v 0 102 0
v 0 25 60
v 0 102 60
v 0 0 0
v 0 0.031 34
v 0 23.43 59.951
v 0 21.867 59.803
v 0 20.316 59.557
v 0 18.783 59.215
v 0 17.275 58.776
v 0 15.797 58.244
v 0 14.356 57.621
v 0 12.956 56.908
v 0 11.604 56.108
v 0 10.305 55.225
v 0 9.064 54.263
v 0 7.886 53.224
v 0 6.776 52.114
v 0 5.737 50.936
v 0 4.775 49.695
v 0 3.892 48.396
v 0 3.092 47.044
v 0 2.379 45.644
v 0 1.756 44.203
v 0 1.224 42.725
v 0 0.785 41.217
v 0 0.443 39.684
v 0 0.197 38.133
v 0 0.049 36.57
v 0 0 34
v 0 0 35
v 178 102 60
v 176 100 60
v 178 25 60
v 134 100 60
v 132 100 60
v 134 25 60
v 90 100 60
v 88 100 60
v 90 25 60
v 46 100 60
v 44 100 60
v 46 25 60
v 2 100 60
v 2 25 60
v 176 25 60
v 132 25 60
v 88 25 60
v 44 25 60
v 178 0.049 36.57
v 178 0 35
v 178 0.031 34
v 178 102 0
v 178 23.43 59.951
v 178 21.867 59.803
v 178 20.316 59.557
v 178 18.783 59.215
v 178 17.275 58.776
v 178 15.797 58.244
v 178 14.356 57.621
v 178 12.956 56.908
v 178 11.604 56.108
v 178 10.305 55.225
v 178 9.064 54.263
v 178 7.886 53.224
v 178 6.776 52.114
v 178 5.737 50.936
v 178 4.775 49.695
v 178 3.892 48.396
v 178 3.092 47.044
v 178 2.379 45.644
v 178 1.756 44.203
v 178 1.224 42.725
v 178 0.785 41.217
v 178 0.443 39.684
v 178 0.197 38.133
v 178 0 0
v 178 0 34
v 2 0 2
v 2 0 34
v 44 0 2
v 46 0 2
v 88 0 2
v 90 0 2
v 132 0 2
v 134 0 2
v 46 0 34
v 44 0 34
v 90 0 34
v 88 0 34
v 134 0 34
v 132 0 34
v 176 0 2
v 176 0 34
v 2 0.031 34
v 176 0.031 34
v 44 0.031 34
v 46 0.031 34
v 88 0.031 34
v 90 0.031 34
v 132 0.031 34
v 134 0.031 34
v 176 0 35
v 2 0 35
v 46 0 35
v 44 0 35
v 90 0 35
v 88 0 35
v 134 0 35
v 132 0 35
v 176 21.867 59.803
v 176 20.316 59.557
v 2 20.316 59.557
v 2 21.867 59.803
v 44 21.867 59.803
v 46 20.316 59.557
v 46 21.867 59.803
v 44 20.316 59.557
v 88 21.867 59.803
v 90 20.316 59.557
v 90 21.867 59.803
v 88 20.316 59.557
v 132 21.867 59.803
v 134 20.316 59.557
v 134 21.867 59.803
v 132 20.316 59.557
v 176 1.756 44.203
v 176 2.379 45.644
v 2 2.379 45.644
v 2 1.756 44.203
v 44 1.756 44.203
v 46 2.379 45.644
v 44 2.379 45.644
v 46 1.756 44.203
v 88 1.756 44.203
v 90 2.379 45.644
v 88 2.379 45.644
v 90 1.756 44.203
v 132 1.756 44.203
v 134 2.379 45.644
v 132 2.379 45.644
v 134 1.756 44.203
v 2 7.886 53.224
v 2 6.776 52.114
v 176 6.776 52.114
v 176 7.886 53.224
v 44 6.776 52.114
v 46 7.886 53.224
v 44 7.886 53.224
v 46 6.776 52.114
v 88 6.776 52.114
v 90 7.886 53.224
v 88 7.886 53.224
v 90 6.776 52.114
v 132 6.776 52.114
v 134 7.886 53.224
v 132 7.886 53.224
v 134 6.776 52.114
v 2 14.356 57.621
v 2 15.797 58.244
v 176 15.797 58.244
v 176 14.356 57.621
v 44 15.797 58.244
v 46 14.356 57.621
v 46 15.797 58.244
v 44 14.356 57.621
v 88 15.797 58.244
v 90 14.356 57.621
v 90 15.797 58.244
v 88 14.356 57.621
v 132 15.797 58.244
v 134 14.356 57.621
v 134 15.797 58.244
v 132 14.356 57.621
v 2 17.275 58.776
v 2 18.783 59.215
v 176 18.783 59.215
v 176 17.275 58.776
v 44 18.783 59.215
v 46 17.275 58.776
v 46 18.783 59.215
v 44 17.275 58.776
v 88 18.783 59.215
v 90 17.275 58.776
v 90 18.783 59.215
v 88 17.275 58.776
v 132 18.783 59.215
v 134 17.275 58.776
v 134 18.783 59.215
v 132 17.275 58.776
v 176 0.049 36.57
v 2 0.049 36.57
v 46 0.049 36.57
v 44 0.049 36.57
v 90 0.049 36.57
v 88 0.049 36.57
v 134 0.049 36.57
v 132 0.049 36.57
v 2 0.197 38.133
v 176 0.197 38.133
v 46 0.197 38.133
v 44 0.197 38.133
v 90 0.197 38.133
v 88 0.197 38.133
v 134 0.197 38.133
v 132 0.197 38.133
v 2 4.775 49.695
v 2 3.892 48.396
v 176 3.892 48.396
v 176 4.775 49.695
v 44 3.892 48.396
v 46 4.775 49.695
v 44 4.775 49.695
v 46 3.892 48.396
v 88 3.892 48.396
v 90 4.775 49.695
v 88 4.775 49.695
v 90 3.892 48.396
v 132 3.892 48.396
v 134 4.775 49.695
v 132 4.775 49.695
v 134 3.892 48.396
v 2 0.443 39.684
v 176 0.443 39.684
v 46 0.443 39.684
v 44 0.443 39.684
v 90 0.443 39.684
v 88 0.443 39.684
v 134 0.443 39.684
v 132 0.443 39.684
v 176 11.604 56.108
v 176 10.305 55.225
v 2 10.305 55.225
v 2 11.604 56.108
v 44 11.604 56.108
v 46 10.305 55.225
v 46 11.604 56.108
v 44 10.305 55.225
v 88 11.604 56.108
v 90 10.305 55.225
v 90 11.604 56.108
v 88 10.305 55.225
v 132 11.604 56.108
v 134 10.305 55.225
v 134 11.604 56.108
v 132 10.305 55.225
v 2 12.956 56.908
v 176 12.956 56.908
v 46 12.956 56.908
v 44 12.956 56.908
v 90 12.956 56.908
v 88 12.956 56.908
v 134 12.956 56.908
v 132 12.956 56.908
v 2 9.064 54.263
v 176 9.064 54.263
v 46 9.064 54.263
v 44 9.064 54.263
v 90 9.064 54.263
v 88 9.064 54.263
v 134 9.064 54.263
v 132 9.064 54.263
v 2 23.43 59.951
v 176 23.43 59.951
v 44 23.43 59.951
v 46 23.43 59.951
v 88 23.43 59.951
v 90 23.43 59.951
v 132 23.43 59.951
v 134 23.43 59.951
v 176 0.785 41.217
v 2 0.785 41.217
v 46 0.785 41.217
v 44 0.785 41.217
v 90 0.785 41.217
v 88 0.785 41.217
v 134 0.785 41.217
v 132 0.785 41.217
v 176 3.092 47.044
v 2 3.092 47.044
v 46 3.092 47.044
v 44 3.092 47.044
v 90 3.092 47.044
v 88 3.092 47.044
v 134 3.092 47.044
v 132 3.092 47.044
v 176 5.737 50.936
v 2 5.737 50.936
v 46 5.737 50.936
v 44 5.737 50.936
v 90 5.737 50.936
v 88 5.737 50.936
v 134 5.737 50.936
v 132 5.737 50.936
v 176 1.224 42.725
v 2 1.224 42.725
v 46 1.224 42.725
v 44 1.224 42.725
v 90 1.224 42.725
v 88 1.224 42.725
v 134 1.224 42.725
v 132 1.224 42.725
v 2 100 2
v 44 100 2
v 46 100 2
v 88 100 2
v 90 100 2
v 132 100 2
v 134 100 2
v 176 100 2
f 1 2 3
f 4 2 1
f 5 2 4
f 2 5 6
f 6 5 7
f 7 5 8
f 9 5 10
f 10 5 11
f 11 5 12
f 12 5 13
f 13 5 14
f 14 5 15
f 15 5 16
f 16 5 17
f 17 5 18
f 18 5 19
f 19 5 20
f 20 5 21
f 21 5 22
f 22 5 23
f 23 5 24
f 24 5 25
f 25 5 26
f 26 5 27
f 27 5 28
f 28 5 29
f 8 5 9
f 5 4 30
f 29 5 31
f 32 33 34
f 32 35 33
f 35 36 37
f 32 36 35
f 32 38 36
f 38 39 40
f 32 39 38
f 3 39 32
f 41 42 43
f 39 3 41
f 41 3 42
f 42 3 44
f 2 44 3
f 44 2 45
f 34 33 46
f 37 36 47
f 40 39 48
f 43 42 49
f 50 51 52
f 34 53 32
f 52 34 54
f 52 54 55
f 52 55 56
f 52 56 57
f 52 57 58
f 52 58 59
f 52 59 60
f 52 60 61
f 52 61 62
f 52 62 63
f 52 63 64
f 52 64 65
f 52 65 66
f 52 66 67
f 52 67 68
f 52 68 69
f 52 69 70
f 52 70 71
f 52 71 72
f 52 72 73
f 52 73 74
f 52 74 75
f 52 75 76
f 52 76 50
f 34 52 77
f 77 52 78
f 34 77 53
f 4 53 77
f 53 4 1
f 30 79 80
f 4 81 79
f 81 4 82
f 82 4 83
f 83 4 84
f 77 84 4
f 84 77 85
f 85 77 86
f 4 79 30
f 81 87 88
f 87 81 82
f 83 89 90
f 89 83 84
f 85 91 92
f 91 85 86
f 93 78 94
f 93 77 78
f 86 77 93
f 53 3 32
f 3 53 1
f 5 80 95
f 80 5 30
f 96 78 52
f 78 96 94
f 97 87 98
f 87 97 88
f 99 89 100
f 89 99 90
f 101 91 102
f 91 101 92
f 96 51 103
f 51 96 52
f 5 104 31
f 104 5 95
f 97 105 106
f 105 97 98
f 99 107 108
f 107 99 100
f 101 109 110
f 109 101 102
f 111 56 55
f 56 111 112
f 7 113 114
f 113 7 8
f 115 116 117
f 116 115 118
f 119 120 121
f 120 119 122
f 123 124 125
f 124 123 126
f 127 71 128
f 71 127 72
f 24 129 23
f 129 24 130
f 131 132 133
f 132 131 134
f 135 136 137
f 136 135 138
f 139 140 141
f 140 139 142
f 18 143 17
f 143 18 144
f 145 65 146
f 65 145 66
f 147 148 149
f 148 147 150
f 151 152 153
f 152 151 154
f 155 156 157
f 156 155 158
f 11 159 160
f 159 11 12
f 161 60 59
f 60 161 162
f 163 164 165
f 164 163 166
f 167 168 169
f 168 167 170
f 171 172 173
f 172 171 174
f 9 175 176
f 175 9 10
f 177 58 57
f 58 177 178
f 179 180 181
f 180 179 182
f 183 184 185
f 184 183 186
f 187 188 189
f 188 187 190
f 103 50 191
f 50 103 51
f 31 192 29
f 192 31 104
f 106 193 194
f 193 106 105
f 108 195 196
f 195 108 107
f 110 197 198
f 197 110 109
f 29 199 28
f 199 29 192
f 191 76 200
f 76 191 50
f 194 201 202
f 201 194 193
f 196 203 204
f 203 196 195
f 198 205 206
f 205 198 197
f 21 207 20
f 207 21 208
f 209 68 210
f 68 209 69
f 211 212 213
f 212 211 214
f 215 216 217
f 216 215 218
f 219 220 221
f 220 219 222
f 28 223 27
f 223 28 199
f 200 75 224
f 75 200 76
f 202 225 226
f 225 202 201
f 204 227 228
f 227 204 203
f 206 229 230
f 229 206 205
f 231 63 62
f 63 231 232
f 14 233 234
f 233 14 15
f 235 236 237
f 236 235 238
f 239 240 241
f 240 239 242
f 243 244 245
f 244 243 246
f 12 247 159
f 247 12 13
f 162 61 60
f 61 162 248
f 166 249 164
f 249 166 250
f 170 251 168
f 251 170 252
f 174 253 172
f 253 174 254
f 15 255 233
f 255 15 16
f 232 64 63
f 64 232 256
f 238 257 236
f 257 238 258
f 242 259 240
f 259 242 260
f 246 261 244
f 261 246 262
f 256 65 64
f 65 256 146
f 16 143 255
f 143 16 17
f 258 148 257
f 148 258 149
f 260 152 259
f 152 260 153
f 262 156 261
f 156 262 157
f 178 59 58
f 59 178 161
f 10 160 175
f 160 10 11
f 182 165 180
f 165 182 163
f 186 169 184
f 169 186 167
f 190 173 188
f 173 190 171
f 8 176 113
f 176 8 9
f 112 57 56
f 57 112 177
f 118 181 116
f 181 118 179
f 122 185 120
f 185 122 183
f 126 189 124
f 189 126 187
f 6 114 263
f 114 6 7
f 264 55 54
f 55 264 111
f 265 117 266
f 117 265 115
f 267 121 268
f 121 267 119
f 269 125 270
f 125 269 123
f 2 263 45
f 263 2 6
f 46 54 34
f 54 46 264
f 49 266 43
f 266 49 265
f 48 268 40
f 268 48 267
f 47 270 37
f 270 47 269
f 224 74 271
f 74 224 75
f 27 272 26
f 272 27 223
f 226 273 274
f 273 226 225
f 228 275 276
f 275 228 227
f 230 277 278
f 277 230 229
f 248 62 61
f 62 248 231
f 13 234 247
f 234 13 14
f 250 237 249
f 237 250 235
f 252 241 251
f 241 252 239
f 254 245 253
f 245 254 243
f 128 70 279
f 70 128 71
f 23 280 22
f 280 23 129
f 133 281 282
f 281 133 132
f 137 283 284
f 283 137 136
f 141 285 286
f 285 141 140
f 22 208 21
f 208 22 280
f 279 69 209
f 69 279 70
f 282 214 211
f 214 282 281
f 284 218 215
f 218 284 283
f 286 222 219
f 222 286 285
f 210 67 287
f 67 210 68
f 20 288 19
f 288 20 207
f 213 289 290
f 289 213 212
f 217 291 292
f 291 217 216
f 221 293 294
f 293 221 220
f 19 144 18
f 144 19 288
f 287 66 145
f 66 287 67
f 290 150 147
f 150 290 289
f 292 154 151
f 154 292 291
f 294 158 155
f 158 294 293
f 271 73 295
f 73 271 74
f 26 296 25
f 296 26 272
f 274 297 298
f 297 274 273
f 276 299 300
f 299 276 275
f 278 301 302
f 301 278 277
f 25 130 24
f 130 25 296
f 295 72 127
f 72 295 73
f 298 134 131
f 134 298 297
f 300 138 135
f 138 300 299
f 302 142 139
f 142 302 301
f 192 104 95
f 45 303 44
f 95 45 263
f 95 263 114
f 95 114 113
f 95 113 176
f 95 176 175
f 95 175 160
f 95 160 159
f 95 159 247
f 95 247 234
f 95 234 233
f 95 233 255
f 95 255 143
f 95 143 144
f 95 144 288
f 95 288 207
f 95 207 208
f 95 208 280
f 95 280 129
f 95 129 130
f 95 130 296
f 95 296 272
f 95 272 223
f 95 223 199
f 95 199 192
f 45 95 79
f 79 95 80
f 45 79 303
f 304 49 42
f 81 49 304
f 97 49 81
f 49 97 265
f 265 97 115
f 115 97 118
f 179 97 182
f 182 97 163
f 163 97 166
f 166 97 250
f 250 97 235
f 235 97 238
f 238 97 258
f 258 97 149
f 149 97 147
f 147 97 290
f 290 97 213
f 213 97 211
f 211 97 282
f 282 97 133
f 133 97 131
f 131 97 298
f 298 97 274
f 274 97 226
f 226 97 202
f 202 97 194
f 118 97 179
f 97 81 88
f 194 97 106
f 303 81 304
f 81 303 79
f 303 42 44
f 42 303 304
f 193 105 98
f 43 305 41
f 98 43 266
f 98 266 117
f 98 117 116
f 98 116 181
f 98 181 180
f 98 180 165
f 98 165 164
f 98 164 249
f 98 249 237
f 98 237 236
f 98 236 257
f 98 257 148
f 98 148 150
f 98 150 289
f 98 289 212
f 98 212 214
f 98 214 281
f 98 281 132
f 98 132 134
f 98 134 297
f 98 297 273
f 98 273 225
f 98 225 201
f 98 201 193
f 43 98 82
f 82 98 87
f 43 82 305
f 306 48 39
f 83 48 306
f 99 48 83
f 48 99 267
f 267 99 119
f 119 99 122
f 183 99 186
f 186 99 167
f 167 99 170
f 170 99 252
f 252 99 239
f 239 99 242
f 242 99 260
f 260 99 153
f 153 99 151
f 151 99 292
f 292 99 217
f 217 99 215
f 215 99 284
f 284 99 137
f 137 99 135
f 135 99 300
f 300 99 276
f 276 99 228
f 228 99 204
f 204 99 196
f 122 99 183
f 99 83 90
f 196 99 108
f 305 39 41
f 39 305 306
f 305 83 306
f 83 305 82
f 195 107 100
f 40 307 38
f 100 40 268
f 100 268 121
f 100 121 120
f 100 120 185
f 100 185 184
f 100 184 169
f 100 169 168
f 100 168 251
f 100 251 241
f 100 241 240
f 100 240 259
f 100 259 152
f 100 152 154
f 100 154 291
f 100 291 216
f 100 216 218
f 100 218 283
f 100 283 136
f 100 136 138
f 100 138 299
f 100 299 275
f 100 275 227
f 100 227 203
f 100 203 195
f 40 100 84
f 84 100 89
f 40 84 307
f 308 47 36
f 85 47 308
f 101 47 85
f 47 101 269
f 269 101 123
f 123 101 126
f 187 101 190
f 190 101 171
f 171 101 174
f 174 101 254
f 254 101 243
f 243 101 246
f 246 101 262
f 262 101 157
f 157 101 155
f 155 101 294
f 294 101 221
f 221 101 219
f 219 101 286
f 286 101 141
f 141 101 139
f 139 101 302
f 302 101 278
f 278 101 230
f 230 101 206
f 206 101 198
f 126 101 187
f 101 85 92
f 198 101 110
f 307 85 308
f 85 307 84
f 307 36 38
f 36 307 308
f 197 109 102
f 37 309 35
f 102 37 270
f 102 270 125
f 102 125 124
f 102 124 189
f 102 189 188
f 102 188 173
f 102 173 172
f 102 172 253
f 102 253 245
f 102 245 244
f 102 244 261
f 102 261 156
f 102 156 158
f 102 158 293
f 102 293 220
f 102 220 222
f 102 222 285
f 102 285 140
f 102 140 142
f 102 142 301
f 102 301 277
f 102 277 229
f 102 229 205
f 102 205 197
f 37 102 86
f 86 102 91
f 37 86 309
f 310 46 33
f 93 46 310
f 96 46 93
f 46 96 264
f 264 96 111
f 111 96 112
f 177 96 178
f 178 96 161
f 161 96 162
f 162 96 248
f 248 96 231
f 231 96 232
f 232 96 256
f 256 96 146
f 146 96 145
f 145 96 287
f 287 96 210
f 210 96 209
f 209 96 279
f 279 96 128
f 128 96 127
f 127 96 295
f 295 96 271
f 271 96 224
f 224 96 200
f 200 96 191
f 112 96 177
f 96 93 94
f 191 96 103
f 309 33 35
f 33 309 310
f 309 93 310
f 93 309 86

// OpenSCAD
nBags = 4;
bagW = 42;
bagD = 100;
wall = 2;

w =  nBags * bagW + (nBags + 1) * wall;
h = 60;
d = bagD + wall;

curveH = 25;
curveSides = 100;

difference() {
    union() {
        difference() {
            cube([w, d, h]);
            translate([-1, -1, h - curveH - 1])
                cube([w + 2, curveH + 1, h + 1]);
        }
        translate([0, curveH, h - curveH])
            rotate([0, 90, 0])
                cylinder(d = 2 * curveH, h = w, $fn = curveSides);
    }
    for(i=[0:nBags-1]) {
        translate([wall + (i * (bagW + wall)), -1, wall])
            cube([bagW, bagD + 1, h]);
    }
}

/*
translate([w + 10, 0, 0]) {
    difference() {
        union() {
            difference() {
                cube([w, d, h]);
                translate([-1, -1, h - curveH - 1])
                    cube([w + 2, curveH + 1, h + 1]);
            }
            translate([0, curveH, h - curveH])
                rotate([0, 90, 0])
                    cylinder(d = 2 * curveH, h = w, $fn = curveSides);
        }
        for(i=[0:nBags-1]) {
            translate([wall + (i * (bagW + wall)), -1, wall])
                cube([bagW, bagD + 1, h]);
        }
        translate([2 * wall + bagW, -1, -1])
            cube([1000, 1000, 1000]);        
    }
}
*/

echo(w);
    
